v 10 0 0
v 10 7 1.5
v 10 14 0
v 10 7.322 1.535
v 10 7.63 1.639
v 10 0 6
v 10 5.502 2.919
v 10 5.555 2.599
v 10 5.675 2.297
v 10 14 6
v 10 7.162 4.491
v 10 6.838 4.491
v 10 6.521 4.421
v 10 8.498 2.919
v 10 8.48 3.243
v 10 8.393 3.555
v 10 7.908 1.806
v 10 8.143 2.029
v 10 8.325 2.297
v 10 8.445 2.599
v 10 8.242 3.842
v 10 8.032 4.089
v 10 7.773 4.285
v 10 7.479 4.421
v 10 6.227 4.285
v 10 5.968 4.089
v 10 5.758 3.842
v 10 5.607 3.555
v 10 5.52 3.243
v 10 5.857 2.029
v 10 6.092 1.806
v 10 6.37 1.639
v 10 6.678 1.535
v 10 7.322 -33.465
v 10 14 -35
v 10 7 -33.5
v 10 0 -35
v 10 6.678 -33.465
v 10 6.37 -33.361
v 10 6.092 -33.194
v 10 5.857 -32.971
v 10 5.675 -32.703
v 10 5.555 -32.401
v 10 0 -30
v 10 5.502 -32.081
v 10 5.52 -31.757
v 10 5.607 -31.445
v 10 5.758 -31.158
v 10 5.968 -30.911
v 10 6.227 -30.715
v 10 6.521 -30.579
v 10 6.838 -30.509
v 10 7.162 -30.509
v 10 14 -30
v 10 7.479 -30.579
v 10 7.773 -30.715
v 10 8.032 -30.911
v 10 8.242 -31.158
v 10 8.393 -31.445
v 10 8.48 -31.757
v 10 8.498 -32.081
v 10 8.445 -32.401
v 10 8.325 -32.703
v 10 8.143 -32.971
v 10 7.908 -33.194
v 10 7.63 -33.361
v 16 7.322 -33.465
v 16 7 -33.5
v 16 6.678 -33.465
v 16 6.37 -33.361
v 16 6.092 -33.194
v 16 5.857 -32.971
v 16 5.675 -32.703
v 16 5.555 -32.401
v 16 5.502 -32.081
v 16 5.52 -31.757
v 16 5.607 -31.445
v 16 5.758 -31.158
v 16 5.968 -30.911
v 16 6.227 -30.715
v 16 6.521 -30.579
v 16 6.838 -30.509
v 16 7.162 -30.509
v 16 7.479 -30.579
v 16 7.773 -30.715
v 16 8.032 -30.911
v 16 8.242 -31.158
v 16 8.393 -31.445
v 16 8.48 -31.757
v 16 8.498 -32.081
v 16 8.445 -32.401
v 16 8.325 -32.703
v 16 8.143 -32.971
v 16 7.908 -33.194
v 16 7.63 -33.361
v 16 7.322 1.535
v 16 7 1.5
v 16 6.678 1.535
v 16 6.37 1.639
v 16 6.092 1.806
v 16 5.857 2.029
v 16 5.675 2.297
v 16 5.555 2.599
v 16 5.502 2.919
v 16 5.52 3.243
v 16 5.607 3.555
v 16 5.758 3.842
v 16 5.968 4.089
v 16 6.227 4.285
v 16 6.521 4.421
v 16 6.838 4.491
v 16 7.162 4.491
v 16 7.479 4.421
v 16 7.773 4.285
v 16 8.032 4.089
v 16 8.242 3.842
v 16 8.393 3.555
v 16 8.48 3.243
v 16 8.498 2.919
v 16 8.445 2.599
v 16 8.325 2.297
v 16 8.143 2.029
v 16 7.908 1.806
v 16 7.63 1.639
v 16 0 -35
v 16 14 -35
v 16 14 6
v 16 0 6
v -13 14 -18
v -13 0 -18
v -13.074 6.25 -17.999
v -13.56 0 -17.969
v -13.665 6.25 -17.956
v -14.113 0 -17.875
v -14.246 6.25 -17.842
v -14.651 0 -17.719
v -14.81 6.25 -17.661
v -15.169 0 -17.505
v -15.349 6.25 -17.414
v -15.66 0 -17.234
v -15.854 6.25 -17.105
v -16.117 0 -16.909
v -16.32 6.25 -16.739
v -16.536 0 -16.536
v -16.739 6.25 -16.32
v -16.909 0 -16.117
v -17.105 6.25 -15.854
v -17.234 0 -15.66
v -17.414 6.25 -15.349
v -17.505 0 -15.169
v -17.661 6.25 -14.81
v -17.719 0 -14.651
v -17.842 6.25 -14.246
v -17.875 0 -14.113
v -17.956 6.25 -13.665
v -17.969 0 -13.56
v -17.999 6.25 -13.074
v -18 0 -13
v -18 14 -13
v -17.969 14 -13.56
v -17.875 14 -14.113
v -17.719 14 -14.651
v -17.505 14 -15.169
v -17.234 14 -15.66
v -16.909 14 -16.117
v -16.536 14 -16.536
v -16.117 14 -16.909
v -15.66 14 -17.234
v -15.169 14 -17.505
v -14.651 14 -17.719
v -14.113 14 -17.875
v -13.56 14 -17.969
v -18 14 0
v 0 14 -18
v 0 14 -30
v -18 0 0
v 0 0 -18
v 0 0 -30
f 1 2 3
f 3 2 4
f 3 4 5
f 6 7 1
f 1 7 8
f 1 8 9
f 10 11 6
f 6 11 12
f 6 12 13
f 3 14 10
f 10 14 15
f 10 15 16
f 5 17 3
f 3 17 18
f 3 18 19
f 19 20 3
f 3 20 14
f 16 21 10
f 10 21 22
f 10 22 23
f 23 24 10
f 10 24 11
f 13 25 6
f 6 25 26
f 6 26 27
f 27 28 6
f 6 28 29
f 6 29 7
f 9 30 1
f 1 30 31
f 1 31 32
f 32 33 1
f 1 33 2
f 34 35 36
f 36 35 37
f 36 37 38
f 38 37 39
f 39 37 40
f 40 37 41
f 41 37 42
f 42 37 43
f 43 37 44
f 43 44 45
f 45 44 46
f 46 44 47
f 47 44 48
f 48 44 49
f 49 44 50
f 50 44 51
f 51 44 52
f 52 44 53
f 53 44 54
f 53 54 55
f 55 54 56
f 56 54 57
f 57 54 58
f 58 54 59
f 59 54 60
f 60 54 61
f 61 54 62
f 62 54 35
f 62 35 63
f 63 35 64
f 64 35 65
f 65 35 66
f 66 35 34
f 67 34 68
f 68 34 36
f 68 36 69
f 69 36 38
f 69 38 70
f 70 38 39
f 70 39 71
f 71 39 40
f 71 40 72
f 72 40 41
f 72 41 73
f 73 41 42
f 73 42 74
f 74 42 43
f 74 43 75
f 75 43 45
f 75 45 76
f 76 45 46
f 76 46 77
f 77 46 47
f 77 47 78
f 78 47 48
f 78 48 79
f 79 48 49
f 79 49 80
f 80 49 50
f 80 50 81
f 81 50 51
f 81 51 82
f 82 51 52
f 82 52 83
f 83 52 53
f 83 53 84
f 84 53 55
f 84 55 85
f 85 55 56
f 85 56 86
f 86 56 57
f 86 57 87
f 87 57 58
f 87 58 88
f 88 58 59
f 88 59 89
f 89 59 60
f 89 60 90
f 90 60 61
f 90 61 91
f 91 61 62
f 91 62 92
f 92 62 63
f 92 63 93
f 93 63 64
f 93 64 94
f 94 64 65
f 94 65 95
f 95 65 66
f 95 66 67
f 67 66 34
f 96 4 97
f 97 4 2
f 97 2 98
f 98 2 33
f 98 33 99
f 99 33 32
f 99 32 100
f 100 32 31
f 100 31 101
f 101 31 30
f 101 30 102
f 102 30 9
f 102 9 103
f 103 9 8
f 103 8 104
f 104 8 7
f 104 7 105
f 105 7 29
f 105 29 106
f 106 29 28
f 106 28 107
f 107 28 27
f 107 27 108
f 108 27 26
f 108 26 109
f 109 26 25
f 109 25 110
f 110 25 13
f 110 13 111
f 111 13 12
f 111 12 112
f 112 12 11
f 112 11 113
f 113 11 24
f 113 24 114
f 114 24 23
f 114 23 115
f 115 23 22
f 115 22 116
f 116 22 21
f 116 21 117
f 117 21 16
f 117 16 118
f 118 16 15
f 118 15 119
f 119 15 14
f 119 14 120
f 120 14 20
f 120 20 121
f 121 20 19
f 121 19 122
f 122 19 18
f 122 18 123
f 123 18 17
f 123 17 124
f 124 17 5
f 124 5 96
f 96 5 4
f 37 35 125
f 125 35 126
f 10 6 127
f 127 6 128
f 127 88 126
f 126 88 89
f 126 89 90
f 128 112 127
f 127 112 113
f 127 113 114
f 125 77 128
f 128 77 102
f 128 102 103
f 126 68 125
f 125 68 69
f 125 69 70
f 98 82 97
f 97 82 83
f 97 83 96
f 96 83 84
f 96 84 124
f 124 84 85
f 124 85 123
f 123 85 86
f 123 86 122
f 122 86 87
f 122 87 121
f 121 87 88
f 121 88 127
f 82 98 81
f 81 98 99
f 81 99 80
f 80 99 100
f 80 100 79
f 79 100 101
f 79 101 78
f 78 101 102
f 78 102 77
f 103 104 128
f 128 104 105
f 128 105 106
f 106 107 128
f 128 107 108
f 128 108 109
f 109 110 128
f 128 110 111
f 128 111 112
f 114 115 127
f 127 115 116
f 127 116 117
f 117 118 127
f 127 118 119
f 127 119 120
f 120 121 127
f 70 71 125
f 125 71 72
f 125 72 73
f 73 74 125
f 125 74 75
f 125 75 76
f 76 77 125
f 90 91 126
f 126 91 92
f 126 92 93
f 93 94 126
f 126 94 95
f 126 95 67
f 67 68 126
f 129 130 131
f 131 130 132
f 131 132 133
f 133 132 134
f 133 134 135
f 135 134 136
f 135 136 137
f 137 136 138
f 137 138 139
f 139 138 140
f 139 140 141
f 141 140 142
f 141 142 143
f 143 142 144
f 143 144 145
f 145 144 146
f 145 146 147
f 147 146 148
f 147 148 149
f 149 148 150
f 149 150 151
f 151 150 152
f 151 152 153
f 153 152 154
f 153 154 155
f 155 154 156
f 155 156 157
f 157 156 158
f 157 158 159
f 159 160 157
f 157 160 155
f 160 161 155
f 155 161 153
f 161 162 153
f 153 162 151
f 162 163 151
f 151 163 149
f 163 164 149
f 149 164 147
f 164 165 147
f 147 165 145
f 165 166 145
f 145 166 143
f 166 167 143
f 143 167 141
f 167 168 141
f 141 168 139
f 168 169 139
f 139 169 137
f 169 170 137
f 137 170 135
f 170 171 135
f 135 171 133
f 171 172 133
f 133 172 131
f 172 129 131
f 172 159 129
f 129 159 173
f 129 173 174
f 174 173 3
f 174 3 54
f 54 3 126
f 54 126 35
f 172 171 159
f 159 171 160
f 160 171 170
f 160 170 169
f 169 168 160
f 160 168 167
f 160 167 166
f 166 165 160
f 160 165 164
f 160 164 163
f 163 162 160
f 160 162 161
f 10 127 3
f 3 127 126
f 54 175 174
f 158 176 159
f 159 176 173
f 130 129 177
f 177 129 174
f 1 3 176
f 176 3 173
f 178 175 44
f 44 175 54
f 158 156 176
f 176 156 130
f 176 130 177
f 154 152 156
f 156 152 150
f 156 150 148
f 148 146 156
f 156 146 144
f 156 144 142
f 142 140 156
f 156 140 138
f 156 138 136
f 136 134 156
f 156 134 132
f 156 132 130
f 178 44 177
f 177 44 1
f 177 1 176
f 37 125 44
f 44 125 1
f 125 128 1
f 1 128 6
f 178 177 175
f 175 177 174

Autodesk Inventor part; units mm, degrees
ref_plane "YZ Plane" through (0, 0, 0) normal (1, 0, 0) x (0, 1, 0)
ref_plane "XZ Plane" through (0, 0, 0) normal (0, 1, 0) x (-1, 0, 0)
ref_plane "XY Plane" through (0, 0, 0) normal (0, 0, 1) x (1, 0, 0)
sketch "Sketch1" plane through (0, 0, 0) normal (1, 0, 0) x (0, 1, 0)
  line L0 (0, 0) -> (14, 0)
  line L1 (14, 0) -> (14, -30)
  line L2 (14, -30) -> (0, -30)
  line L3 (0, -30) -> (0, 0)
  line L4 (14, -30) -> (0, -30)
  line L5 (0, -30) -> (0, -30)
  line L6 (0, -30) -> (14, -30)
  line L7 (14, -30) -> (14, -30)
  line L8 (0, 0) -> (0, -18)
  line L9 (0, -18) -> (14, -18)
  line L10 (14, -18) -> (14, 0)
  point P0 (14, -18)
  dimension "d12" = 14
  dimension "d13" = 30
  dimension "d14" = 12
  dimension "d15" = 0
extrude "Extrusion6" add sketch "Sketch1" along normal blind 10 contours L9 L1 L2 L3
extrude "Extrusion7" add sketch "Sketch1" along normal blind 10 and the other way blind 18 contours L0 L1 L9 L3
fillet "Fillet2" radius 5 1 edges at (-18, 7, -18)
sketch "Sketch7" plane through (10, 0, 0) normal (1, 0, 0) x (0, 0, -1)
  line L0 (35, 14) -> (-6, 14)
  line L1 (-6, 14) -> (-6, 0)
  line L2 (-6, 0) -> (35, 0)
  line L3 (35, 0) -> (35, 14)
  line L4 (30, 0) -> (30, 14) projected
  circle A0 centre (32, 7) radius 1.5
  circle A1 centre (-3, 7) radius 1.5
  point P0 (0, 0)
  dimension "d32" = 41
  dimension "d33" = 5
  dimension "d34" = 14
  dimension "d35" = 3
  dimension "d36" = 3
  dimension "d37" = 3
  dimension "d38" = 35
extrude "Extrusion9" add sketch "Sketch7" along normal blind 6
properties part number "_3DPrint"
